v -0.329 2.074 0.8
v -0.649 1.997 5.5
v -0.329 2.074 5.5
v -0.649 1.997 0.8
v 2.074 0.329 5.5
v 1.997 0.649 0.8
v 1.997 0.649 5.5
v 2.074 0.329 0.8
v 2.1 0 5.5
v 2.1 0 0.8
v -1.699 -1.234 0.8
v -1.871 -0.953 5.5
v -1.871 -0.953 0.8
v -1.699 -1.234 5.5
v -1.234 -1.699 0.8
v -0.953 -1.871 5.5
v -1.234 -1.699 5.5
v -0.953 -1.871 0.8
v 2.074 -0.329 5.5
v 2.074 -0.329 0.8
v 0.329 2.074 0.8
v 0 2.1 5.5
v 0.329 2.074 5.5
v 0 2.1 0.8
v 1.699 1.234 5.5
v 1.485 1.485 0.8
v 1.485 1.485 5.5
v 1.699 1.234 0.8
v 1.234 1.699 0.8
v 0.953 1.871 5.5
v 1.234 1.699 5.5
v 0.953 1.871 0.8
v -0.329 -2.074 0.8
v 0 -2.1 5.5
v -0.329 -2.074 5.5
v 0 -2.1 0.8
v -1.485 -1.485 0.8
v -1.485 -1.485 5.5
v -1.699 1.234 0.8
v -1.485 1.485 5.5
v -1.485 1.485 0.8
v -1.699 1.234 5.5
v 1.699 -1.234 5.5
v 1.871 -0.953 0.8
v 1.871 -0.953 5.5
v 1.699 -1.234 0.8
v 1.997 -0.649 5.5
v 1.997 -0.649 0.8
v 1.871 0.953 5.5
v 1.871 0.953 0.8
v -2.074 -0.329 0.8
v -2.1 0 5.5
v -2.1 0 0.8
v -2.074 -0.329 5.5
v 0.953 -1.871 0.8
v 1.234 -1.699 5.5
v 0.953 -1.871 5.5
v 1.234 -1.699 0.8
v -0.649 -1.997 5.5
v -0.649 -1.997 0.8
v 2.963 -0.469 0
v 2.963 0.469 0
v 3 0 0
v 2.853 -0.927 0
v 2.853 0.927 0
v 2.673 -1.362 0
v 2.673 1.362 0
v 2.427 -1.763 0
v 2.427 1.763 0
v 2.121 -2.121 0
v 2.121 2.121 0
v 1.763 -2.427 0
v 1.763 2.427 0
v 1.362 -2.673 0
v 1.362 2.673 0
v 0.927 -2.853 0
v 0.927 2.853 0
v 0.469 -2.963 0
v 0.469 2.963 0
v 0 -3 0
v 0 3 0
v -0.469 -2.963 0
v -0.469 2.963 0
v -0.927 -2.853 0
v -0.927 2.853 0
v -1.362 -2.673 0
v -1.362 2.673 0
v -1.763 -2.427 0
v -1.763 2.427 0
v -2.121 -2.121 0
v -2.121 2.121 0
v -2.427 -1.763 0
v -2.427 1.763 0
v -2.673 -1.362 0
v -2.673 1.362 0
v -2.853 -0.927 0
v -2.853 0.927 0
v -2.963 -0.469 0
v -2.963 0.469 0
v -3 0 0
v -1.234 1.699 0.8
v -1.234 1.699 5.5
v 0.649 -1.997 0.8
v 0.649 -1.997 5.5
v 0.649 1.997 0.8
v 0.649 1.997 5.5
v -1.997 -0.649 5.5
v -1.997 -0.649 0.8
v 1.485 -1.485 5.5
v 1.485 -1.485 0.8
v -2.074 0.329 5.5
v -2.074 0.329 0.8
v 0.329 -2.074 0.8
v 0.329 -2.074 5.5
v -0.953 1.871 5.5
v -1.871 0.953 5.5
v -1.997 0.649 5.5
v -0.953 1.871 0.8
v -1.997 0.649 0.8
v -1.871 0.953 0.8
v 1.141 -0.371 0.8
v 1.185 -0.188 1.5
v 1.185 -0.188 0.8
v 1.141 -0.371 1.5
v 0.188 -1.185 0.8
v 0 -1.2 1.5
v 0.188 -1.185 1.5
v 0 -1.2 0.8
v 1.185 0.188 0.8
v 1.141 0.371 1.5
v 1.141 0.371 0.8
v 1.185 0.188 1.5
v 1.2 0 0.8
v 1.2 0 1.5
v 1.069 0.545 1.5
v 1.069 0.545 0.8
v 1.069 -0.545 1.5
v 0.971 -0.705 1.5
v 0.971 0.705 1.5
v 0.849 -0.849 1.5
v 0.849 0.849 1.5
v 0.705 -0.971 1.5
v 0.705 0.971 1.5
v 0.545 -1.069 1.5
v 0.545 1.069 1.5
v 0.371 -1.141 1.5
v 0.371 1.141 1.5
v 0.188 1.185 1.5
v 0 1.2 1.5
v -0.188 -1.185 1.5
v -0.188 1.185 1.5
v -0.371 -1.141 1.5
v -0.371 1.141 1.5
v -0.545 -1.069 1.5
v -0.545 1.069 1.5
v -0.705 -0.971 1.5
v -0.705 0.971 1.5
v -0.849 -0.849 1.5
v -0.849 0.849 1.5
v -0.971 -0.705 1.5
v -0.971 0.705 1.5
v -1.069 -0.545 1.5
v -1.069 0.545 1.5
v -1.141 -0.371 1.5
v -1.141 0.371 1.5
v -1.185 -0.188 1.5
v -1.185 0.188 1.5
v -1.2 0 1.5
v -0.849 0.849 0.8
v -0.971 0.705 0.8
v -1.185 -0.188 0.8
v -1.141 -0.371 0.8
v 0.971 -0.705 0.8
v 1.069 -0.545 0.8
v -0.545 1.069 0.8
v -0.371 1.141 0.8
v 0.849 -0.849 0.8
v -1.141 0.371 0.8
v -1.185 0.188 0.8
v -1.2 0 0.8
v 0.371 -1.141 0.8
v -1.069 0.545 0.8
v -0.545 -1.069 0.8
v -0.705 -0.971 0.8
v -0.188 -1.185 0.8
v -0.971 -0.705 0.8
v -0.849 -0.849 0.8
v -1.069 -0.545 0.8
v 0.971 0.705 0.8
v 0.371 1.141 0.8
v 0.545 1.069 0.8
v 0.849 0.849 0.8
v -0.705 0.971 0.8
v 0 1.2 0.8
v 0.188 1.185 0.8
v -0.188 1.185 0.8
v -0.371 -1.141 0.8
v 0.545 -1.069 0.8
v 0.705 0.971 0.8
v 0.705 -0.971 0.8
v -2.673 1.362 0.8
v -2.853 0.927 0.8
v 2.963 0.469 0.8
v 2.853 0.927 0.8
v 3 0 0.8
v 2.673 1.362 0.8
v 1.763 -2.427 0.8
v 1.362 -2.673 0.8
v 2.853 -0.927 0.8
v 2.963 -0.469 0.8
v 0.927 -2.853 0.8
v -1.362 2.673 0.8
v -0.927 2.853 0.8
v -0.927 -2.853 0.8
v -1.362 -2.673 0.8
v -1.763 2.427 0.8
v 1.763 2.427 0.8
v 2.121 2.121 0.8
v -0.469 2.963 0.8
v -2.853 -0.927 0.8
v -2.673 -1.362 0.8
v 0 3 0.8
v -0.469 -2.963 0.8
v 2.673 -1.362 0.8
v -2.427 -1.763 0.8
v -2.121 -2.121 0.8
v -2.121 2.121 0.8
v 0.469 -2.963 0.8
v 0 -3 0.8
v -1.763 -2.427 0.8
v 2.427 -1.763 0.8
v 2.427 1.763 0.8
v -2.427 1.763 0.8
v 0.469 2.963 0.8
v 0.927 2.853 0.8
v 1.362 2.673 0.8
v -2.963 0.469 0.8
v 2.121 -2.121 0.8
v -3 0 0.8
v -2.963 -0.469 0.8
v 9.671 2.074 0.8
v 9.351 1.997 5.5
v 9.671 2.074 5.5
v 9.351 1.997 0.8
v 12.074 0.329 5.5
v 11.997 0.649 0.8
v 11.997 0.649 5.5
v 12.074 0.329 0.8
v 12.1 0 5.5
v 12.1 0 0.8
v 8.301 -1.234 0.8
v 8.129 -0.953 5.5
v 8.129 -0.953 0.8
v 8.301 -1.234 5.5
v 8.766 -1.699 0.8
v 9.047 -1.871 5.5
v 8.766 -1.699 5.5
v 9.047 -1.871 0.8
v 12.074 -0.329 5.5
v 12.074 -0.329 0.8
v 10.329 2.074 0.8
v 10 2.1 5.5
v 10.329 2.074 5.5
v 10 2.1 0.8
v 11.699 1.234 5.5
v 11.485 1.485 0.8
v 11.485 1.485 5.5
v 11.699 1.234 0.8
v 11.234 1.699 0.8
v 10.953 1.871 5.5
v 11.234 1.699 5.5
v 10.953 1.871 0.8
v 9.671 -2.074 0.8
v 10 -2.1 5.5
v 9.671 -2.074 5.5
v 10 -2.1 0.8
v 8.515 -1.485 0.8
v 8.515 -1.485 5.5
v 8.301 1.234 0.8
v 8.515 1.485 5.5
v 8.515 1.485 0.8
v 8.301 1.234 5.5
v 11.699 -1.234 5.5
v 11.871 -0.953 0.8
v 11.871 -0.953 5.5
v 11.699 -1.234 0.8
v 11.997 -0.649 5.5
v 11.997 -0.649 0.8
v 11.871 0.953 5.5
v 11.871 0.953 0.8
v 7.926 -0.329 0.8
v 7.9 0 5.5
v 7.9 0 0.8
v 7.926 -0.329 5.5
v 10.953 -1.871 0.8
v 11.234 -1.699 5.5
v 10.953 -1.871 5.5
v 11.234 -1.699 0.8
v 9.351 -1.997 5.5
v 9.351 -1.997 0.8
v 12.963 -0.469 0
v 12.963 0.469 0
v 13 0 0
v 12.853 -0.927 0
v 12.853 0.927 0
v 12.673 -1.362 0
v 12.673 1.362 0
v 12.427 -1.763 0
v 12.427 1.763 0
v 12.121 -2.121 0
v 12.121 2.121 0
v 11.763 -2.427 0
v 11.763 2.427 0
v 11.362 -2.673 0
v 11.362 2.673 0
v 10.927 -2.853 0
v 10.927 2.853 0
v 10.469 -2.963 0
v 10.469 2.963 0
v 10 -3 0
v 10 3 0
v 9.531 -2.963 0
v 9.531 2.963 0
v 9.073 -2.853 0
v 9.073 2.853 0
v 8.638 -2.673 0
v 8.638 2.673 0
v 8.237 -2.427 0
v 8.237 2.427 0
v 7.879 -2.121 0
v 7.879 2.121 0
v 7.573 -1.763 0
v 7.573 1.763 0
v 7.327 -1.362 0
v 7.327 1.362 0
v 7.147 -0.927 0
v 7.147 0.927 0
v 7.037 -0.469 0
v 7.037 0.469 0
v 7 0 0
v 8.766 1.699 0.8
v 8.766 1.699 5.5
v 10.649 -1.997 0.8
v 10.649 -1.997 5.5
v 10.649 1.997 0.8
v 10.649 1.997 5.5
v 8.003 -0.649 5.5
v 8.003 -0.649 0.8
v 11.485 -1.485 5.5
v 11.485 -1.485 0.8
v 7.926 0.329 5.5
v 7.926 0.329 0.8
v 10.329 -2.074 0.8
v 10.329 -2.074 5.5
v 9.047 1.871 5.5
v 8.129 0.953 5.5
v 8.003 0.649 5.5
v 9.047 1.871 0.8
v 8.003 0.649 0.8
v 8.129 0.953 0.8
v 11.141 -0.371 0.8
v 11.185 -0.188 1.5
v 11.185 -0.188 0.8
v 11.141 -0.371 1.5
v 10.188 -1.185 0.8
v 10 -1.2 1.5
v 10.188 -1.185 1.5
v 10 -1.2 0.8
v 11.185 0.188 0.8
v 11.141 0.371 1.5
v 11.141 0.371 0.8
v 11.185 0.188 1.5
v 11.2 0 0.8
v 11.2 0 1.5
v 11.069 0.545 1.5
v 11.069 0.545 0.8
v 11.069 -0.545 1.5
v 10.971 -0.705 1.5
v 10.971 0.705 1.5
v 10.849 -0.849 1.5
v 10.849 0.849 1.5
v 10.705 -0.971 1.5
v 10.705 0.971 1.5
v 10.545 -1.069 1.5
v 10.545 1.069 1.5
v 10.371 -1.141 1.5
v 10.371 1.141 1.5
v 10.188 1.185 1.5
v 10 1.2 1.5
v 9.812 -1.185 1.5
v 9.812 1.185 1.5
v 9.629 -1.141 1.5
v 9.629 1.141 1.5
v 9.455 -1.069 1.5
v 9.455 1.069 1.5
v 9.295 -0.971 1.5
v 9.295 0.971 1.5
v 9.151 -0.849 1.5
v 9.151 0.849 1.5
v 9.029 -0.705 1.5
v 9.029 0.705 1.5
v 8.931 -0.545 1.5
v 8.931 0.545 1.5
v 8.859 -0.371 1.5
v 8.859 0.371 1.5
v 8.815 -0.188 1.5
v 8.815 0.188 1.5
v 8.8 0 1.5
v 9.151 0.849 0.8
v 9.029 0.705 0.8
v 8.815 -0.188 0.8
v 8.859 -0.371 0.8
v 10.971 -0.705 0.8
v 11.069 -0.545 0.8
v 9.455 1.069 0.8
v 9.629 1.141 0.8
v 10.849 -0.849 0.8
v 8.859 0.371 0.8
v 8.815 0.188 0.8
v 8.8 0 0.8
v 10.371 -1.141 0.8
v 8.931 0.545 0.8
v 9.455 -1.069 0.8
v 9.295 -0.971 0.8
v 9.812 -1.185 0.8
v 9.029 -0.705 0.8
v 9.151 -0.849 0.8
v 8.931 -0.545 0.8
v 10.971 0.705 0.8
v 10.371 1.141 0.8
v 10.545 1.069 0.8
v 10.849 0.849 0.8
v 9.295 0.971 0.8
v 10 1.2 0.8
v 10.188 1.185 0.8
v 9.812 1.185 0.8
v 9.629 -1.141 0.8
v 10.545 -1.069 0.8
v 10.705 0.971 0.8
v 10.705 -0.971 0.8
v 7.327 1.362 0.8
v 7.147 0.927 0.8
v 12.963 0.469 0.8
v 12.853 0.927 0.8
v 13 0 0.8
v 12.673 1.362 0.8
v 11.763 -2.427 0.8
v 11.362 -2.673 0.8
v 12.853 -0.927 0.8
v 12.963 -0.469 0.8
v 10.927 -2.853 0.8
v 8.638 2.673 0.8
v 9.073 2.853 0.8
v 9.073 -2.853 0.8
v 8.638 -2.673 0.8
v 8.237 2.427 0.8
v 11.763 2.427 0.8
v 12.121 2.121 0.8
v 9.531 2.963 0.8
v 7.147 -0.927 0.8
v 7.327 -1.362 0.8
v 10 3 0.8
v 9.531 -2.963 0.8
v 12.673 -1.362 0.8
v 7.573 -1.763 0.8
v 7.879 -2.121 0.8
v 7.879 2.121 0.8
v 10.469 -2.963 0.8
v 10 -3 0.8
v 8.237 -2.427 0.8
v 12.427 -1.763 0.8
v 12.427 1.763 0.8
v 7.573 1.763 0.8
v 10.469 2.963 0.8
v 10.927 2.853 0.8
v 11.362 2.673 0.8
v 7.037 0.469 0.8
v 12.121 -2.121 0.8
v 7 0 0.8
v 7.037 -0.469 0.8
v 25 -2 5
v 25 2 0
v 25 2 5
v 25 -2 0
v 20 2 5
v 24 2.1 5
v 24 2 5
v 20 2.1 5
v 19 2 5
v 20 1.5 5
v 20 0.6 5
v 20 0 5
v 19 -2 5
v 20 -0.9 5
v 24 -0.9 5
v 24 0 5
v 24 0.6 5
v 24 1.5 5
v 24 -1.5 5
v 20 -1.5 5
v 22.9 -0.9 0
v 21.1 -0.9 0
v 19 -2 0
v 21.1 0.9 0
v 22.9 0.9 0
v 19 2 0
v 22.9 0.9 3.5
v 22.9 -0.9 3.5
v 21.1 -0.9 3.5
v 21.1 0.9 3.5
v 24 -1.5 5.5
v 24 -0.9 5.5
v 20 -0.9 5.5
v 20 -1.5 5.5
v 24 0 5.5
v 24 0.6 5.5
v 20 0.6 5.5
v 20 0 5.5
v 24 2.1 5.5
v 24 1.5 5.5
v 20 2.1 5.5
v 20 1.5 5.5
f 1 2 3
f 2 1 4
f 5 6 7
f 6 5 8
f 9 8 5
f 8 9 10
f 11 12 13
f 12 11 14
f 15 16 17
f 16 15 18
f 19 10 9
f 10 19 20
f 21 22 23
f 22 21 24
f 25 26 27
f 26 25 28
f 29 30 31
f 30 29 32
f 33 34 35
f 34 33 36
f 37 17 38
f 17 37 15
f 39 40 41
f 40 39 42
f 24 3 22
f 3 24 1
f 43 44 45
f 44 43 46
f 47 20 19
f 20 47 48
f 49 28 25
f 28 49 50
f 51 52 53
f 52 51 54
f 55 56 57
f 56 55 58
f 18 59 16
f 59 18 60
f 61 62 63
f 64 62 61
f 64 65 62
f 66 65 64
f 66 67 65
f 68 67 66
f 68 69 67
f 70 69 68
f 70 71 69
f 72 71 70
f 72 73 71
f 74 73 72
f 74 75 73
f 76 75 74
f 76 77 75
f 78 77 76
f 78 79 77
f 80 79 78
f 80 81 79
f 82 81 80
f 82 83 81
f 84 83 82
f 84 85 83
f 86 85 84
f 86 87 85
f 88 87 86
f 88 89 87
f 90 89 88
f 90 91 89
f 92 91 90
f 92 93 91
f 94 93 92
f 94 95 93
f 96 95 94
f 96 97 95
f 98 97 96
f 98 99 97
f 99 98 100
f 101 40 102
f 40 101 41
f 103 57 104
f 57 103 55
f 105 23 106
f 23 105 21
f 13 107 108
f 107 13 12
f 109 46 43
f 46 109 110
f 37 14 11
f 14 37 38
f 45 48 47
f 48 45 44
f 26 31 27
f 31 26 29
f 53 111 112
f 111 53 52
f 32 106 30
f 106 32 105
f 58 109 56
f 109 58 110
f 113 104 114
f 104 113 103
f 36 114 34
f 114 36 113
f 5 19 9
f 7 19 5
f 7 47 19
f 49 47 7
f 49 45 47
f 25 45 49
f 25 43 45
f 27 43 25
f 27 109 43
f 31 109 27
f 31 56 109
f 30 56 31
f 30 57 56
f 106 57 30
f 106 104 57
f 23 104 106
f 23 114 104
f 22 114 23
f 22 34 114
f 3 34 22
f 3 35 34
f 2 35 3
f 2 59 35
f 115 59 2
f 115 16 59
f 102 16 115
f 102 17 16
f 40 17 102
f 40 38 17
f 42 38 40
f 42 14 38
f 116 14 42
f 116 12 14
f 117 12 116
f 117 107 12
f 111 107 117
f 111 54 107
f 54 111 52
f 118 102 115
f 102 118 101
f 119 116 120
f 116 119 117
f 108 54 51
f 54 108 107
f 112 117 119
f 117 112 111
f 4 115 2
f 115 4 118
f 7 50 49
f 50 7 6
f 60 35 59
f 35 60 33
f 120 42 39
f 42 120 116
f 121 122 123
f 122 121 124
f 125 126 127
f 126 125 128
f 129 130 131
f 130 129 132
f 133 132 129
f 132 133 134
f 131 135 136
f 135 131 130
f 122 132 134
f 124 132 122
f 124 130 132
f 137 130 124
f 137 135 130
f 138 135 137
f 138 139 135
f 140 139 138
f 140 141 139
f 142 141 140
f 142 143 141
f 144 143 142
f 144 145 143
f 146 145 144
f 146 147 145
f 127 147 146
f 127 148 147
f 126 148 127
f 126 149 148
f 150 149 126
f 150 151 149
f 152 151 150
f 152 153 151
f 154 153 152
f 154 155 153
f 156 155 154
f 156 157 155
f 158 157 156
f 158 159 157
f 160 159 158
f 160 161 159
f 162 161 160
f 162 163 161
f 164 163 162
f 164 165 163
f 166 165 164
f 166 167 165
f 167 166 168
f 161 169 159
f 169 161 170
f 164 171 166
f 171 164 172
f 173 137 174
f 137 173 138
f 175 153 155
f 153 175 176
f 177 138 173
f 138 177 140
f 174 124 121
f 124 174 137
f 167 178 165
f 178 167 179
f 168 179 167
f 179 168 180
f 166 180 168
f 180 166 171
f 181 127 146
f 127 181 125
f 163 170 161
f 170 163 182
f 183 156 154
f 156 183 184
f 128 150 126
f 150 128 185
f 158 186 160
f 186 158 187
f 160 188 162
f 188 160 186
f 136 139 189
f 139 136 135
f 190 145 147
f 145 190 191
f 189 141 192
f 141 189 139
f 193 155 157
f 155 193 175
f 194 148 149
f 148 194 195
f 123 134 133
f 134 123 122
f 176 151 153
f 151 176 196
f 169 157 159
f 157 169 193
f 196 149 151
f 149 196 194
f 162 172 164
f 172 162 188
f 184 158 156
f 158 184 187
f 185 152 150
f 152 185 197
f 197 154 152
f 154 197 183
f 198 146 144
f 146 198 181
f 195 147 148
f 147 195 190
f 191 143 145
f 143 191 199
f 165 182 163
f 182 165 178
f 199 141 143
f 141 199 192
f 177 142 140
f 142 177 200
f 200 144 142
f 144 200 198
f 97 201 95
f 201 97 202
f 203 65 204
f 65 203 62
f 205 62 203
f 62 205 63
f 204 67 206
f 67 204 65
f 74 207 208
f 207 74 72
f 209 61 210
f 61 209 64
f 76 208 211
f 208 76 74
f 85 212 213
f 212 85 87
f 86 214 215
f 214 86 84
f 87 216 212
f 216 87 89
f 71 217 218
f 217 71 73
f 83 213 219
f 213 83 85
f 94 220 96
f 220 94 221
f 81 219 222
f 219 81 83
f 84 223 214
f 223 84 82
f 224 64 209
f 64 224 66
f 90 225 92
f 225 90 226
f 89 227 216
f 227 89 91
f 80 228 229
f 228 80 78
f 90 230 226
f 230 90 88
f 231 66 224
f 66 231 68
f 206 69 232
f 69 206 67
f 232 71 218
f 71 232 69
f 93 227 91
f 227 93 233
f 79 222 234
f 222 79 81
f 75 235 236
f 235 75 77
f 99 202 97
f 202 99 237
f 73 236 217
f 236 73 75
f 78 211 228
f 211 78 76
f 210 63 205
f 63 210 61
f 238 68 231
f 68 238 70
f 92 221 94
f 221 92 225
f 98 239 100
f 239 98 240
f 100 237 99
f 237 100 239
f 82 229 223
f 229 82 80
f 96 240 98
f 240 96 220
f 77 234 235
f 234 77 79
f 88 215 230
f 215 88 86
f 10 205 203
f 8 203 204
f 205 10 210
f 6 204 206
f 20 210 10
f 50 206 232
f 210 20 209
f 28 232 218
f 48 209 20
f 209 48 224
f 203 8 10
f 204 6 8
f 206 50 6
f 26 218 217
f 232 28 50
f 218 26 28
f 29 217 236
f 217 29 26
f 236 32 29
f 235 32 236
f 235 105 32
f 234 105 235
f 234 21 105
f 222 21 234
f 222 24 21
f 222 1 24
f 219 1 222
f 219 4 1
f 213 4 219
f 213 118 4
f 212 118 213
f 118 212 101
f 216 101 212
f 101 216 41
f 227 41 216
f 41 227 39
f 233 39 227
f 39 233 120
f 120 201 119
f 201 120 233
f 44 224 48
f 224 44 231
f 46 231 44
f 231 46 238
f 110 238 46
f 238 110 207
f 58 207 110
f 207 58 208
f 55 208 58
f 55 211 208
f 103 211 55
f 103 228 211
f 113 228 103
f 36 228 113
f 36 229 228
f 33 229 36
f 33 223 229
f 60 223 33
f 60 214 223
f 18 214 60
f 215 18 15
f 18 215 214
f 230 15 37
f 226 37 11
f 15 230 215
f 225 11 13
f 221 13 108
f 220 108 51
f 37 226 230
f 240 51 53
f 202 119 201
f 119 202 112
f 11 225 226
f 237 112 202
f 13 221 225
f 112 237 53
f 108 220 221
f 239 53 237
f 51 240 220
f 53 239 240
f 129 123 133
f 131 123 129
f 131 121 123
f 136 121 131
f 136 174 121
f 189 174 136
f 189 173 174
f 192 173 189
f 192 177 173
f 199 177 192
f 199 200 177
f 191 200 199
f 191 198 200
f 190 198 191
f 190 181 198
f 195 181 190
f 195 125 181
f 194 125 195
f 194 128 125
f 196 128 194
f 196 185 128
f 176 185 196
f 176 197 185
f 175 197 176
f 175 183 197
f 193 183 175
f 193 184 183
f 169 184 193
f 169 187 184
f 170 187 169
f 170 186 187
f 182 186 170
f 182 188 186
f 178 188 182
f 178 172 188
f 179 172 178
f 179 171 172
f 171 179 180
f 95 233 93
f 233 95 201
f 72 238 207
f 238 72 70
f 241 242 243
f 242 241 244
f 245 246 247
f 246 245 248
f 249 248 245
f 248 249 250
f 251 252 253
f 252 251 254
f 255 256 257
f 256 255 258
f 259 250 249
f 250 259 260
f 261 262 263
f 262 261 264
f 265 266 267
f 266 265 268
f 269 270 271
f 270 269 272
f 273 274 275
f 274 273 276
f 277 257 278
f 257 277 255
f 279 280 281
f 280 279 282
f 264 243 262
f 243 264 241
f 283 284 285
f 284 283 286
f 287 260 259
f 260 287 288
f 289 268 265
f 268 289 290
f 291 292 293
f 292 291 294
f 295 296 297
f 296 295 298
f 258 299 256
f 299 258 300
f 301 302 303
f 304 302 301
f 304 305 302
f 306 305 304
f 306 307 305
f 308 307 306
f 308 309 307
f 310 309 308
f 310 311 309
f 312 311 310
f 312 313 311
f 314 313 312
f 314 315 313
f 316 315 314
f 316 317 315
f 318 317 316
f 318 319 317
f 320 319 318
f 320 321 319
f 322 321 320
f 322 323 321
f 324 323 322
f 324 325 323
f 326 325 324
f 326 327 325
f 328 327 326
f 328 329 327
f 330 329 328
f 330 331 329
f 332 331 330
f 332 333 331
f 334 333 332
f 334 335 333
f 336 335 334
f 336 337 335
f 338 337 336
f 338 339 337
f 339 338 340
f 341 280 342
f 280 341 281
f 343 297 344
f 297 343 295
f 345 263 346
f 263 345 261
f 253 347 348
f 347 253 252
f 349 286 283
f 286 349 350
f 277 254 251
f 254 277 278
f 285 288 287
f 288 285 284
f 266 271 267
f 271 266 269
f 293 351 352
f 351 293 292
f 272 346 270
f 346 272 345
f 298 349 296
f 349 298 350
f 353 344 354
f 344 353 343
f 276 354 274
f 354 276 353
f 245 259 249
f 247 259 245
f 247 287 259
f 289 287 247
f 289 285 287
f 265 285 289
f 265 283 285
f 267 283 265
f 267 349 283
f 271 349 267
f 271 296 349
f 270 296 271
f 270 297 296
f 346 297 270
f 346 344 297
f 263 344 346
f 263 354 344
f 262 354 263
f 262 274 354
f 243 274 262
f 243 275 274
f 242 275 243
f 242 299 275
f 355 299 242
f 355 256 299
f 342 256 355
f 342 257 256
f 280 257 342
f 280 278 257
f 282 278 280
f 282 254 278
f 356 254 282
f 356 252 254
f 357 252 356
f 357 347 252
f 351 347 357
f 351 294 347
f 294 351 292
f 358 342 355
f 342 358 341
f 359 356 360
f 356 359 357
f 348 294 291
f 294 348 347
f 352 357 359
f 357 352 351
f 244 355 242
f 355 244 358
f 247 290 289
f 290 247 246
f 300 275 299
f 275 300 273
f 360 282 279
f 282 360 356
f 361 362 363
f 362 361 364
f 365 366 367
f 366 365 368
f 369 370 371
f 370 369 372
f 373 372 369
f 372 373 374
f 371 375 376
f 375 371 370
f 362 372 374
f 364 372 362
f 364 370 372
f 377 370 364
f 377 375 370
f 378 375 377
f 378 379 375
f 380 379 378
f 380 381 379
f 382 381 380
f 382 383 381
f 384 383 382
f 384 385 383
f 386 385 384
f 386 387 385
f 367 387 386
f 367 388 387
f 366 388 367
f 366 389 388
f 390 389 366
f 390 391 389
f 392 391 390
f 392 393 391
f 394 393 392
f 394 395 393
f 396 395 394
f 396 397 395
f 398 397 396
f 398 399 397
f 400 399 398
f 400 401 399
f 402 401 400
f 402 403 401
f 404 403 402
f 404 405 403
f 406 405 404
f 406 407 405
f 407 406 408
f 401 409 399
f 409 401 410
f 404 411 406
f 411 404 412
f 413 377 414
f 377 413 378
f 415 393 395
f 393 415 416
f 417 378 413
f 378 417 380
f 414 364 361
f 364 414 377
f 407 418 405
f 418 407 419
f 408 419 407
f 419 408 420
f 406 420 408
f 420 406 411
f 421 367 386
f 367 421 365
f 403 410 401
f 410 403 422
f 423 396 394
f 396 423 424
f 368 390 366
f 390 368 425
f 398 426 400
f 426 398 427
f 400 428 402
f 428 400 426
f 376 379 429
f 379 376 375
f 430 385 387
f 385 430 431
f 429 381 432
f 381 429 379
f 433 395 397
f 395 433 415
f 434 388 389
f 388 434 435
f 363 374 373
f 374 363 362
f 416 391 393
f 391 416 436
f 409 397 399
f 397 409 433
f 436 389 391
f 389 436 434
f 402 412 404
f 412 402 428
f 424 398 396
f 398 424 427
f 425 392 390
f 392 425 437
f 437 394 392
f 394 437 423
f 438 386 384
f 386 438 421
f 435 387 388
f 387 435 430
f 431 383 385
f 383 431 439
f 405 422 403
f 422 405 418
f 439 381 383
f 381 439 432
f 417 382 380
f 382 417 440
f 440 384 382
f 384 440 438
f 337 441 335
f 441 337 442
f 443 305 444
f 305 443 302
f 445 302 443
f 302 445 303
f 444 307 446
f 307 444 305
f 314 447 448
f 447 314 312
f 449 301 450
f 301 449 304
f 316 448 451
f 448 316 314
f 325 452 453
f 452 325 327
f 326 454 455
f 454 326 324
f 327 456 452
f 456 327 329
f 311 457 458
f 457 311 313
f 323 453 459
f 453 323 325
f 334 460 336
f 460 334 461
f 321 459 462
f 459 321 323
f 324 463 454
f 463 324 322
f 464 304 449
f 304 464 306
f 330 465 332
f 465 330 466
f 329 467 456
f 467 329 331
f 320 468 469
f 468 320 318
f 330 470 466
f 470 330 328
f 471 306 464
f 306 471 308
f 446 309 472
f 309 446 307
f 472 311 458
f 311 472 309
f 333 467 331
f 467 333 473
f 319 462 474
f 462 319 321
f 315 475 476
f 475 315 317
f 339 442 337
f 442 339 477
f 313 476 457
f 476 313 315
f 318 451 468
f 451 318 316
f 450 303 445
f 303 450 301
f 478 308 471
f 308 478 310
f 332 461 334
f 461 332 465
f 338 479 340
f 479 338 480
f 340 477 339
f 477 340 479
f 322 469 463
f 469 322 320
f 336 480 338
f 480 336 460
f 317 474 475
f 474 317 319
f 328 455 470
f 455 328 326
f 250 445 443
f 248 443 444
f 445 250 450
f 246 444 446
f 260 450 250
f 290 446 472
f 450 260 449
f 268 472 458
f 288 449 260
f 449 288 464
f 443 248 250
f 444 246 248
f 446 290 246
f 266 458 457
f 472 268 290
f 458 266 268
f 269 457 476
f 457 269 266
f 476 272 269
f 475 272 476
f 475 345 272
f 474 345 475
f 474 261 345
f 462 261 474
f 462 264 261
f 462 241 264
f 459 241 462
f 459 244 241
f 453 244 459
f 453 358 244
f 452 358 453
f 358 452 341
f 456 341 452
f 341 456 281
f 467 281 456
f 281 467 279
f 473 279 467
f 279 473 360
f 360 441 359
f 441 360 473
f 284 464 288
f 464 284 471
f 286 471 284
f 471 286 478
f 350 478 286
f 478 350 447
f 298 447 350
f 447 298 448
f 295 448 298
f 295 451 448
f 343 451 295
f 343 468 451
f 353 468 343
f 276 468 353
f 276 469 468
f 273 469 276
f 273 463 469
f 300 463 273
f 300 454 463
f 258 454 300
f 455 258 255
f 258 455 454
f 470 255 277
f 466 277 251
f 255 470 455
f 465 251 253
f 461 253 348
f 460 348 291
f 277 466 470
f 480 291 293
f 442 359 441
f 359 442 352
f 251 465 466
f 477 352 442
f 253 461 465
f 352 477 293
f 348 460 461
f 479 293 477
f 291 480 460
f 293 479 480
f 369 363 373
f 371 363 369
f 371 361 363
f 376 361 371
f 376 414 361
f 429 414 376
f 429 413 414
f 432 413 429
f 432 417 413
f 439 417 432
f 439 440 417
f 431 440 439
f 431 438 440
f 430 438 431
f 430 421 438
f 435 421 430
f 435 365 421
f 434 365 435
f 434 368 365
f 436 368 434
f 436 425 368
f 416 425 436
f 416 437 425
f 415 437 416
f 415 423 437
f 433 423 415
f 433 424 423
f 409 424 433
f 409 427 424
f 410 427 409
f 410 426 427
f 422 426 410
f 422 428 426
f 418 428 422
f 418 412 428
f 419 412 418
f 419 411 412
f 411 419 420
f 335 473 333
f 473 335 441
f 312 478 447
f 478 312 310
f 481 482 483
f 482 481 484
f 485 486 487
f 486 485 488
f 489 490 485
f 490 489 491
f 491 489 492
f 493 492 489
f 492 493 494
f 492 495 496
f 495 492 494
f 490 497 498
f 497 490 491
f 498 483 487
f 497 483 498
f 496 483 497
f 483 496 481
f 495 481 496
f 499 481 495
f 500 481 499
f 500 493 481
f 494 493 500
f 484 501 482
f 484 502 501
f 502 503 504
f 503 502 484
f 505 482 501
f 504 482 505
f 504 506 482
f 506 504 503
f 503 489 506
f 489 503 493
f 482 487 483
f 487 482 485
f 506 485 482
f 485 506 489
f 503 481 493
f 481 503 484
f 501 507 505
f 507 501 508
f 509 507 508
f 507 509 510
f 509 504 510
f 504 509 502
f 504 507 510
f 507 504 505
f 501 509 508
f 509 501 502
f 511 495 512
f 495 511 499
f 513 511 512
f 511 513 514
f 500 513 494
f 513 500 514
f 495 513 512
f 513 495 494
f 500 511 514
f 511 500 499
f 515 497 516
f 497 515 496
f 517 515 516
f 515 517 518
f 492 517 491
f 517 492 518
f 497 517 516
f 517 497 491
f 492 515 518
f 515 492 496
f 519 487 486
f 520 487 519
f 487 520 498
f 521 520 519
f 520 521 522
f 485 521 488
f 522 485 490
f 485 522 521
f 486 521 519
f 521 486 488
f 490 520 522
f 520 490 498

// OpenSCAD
// 03_button_actuators.scad
// MEMENTO Tactile Pushbutton Caps & Slide Mute Switch Knob

$fn = 40;

module tactile_button_cap() {
    difference() {
        cylinder(d=4.2, h=5.5);
        // Tactile switch plunger recess
        translate([0, 0, -0.5]) cylinder(d=2.4, h=2.0);
    }
    // Retention brim
    cylinder(d=6.0, h=0.8);
}

module mute_switch_knob() {
    difference() {
        cube([6.0, 4.0, 5.0], center=true);
        // Switch lever slot (1.5mm x 1.5mm)
        translate([0, 0, -1.0]) cube([1.8, 1.8, 4.0], center=true);
    }
    // Grippy texture ridges on top
    translate([-2, -1.5, 2.5]) cube([4, 0.6, 0.5]);
    translate([-2, 0.0, 2.5]) cube([4, 0.6, 0.5]);
    translate([-2, 1.5, 2.5]) cube([4, 0.6, 0.5]);
}

// Layout for printing
translate([0, 0, 0]) tactile_button_cap(); // REC button
translate([10, 0, 0]) tactile_button_cap(); // MARK button
translate([22, 0, 2.5]) mute_switch_knob(); // MUTE knob
